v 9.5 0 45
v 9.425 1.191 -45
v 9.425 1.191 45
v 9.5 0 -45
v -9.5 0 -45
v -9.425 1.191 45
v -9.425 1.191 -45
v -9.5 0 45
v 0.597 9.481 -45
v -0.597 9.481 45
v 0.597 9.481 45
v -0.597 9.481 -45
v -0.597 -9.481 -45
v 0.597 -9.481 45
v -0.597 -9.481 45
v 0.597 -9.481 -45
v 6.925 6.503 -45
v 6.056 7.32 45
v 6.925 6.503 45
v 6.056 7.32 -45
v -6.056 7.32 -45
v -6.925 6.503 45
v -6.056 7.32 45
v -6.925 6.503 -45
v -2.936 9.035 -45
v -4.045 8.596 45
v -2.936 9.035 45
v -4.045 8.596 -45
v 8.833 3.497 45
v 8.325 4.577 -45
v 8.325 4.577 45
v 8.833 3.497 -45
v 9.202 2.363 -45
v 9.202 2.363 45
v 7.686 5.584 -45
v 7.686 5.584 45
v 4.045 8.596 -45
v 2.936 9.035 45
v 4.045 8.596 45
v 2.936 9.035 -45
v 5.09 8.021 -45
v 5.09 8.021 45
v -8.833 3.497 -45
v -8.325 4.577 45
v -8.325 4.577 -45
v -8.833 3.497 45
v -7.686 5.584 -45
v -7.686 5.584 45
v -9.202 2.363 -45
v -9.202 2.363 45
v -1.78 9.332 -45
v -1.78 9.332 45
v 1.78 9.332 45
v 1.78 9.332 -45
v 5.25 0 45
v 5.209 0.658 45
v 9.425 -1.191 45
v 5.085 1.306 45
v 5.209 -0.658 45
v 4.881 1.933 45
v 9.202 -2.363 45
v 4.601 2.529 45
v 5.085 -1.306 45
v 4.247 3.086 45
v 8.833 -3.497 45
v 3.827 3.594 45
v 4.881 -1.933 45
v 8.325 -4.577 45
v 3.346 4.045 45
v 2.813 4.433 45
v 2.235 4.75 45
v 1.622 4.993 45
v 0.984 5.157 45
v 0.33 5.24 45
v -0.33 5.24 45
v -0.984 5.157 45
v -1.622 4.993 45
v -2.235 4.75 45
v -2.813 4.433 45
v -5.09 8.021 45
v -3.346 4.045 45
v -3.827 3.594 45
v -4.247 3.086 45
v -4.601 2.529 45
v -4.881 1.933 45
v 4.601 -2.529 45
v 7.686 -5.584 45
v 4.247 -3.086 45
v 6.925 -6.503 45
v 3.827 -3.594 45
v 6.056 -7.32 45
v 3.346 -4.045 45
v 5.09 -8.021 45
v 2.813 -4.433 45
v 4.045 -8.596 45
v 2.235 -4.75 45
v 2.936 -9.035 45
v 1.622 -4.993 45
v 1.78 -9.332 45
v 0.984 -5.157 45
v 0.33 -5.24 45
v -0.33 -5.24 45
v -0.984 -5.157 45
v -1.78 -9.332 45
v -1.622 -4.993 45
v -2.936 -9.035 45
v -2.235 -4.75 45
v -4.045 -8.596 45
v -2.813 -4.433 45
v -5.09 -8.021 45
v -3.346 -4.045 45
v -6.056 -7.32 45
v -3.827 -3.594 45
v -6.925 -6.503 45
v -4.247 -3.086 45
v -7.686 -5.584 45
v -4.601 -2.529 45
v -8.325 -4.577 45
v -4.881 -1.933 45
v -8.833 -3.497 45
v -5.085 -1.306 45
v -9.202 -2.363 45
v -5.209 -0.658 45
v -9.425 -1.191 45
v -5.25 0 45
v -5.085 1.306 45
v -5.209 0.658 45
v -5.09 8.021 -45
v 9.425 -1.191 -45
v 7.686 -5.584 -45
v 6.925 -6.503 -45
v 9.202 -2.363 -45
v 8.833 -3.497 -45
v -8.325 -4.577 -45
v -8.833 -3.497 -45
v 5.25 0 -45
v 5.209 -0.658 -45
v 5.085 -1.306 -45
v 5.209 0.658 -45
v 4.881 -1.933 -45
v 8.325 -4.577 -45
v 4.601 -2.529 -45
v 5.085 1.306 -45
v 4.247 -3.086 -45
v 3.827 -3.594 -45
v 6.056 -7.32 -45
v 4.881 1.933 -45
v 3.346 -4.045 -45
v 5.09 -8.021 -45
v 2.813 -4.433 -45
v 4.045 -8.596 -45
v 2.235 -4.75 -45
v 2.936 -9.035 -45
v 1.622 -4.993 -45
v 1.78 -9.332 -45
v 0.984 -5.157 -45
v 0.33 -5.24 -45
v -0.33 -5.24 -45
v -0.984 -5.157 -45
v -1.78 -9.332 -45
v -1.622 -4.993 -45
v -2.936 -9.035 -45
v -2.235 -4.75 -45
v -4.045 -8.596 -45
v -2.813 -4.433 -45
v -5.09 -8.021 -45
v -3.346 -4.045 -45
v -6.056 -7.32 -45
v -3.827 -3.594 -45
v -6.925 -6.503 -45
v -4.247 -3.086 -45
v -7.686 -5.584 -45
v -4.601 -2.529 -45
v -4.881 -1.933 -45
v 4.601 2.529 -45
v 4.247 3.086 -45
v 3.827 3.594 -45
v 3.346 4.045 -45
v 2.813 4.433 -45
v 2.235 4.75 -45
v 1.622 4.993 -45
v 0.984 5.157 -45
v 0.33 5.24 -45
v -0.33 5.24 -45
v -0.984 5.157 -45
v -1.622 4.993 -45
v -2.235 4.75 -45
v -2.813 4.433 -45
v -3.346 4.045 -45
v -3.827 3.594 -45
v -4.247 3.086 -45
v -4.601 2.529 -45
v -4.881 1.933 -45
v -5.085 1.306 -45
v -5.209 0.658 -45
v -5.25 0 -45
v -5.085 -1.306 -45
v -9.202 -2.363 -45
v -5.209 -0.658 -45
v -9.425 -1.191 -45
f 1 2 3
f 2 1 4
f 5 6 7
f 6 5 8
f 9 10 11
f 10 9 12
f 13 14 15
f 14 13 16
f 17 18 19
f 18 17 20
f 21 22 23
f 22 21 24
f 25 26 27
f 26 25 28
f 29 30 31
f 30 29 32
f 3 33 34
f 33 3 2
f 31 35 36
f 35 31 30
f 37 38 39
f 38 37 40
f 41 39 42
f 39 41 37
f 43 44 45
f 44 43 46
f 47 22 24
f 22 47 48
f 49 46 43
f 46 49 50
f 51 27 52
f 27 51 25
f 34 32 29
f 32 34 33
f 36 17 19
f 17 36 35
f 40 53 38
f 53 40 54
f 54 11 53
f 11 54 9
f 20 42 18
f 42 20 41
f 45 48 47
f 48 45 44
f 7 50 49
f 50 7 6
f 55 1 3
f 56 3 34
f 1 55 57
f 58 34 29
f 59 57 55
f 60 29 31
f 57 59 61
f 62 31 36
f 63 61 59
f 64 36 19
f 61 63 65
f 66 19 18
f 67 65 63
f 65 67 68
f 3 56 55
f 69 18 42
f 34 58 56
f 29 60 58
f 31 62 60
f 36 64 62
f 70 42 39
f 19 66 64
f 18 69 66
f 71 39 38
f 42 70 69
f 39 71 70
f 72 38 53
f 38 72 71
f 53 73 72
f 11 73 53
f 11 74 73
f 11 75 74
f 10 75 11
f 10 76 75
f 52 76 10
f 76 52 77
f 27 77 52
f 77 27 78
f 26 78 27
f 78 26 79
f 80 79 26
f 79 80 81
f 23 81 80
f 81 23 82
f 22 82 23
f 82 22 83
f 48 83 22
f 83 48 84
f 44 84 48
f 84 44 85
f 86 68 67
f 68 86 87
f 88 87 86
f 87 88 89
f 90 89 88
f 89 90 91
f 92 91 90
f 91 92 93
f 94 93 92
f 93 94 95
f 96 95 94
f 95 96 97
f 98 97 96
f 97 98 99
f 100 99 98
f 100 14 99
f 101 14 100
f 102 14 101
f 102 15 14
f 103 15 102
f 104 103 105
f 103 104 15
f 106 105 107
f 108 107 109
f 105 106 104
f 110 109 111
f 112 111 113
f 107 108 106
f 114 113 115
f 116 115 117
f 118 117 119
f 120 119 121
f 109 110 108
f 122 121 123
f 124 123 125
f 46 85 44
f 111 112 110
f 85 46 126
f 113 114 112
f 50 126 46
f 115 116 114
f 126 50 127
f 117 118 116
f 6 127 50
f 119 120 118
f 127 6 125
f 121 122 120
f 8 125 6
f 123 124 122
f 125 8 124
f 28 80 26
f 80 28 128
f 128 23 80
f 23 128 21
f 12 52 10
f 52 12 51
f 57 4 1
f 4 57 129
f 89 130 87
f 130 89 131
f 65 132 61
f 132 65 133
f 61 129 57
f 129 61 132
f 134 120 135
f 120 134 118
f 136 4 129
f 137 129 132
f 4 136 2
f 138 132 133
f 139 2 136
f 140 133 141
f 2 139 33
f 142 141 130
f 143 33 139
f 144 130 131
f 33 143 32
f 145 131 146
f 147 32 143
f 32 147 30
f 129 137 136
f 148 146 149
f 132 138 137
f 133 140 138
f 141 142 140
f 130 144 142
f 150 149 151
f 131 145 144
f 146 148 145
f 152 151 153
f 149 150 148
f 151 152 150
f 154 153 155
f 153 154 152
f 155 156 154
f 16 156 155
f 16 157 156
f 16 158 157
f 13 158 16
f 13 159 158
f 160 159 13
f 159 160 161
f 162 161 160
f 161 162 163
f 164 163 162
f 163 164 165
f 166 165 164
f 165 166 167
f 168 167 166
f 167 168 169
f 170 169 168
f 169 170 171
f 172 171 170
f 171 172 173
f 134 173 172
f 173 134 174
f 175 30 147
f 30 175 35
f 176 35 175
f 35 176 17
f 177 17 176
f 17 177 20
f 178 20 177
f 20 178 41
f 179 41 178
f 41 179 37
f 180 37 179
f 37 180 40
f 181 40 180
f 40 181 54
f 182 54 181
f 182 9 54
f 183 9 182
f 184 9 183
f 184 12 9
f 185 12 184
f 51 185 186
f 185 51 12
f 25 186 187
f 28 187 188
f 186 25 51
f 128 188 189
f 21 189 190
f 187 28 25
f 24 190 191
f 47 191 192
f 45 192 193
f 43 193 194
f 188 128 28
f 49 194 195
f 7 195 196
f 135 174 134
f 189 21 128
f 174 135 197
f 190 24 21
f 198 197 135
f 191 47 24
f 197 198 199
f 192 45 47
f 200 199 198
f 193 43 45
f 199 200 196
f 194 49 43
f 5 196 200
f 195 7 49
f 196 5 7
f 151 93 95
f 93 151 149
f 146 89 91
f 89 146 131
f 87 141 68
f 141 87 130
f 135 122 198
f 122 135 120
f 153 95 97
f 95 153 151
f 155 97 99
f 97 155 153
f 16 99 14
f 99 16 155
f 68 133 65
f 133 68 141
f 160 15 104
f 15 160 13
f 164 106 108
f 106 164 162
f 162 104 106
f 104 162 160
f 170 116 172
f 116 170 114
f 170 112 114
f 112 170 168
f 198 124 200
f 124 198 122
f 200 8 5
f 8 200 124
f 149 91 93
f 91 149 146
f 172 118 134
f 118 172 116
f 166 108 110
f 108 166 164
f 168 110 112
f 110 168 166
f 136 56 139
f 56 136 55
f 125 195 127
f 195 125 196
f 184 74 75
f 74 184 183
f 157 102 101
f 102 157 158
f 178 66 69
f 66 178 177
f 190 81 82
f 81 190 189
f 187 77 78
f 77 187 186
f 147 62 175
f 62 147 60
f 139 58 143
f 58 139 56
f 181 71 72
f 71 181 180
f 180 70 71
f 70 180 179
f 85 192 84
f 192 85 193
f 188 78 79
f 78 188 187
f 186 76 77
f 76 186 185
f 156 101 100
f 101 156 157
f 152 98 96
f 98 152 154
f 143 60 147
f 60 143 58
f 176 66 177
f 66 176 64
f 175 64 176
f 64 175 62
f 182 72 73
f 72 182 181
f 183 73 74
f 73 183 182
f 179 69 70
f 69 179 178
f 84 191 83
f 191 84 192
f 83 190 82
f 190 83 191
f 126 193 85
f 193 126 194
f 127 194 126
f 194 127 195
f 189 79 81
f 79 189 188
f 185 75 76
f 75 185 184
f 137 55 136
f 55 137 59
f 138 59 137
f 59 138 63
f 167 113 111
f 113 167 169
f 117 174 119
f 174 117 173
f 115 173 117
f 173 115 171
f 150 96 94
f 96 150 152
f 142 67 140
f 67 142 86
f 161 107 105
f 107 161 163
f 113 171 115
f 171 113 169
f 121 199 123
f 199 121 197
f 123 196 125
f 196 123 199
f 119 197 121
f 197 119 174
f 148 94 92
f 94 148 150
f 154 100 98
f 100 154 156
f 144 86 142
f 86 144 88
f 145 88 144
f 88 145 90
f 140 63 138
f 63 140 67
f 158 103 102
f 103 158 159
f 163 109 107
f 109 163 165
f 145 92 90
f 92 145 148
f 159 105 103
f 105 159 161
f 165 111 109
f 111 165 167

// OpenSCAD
$fn = 50;


difference() {
	union() {
		translate(v = [0, 0, -45.0000000000]) {
			cylinder(h = 90, r = 9.5000000000);
		}
	}
	union() {
		translate(v = [0, 0, -100.0000000000]) {
			cylinder(h = 200, r = 5.2500000000);
		}
	}
}
